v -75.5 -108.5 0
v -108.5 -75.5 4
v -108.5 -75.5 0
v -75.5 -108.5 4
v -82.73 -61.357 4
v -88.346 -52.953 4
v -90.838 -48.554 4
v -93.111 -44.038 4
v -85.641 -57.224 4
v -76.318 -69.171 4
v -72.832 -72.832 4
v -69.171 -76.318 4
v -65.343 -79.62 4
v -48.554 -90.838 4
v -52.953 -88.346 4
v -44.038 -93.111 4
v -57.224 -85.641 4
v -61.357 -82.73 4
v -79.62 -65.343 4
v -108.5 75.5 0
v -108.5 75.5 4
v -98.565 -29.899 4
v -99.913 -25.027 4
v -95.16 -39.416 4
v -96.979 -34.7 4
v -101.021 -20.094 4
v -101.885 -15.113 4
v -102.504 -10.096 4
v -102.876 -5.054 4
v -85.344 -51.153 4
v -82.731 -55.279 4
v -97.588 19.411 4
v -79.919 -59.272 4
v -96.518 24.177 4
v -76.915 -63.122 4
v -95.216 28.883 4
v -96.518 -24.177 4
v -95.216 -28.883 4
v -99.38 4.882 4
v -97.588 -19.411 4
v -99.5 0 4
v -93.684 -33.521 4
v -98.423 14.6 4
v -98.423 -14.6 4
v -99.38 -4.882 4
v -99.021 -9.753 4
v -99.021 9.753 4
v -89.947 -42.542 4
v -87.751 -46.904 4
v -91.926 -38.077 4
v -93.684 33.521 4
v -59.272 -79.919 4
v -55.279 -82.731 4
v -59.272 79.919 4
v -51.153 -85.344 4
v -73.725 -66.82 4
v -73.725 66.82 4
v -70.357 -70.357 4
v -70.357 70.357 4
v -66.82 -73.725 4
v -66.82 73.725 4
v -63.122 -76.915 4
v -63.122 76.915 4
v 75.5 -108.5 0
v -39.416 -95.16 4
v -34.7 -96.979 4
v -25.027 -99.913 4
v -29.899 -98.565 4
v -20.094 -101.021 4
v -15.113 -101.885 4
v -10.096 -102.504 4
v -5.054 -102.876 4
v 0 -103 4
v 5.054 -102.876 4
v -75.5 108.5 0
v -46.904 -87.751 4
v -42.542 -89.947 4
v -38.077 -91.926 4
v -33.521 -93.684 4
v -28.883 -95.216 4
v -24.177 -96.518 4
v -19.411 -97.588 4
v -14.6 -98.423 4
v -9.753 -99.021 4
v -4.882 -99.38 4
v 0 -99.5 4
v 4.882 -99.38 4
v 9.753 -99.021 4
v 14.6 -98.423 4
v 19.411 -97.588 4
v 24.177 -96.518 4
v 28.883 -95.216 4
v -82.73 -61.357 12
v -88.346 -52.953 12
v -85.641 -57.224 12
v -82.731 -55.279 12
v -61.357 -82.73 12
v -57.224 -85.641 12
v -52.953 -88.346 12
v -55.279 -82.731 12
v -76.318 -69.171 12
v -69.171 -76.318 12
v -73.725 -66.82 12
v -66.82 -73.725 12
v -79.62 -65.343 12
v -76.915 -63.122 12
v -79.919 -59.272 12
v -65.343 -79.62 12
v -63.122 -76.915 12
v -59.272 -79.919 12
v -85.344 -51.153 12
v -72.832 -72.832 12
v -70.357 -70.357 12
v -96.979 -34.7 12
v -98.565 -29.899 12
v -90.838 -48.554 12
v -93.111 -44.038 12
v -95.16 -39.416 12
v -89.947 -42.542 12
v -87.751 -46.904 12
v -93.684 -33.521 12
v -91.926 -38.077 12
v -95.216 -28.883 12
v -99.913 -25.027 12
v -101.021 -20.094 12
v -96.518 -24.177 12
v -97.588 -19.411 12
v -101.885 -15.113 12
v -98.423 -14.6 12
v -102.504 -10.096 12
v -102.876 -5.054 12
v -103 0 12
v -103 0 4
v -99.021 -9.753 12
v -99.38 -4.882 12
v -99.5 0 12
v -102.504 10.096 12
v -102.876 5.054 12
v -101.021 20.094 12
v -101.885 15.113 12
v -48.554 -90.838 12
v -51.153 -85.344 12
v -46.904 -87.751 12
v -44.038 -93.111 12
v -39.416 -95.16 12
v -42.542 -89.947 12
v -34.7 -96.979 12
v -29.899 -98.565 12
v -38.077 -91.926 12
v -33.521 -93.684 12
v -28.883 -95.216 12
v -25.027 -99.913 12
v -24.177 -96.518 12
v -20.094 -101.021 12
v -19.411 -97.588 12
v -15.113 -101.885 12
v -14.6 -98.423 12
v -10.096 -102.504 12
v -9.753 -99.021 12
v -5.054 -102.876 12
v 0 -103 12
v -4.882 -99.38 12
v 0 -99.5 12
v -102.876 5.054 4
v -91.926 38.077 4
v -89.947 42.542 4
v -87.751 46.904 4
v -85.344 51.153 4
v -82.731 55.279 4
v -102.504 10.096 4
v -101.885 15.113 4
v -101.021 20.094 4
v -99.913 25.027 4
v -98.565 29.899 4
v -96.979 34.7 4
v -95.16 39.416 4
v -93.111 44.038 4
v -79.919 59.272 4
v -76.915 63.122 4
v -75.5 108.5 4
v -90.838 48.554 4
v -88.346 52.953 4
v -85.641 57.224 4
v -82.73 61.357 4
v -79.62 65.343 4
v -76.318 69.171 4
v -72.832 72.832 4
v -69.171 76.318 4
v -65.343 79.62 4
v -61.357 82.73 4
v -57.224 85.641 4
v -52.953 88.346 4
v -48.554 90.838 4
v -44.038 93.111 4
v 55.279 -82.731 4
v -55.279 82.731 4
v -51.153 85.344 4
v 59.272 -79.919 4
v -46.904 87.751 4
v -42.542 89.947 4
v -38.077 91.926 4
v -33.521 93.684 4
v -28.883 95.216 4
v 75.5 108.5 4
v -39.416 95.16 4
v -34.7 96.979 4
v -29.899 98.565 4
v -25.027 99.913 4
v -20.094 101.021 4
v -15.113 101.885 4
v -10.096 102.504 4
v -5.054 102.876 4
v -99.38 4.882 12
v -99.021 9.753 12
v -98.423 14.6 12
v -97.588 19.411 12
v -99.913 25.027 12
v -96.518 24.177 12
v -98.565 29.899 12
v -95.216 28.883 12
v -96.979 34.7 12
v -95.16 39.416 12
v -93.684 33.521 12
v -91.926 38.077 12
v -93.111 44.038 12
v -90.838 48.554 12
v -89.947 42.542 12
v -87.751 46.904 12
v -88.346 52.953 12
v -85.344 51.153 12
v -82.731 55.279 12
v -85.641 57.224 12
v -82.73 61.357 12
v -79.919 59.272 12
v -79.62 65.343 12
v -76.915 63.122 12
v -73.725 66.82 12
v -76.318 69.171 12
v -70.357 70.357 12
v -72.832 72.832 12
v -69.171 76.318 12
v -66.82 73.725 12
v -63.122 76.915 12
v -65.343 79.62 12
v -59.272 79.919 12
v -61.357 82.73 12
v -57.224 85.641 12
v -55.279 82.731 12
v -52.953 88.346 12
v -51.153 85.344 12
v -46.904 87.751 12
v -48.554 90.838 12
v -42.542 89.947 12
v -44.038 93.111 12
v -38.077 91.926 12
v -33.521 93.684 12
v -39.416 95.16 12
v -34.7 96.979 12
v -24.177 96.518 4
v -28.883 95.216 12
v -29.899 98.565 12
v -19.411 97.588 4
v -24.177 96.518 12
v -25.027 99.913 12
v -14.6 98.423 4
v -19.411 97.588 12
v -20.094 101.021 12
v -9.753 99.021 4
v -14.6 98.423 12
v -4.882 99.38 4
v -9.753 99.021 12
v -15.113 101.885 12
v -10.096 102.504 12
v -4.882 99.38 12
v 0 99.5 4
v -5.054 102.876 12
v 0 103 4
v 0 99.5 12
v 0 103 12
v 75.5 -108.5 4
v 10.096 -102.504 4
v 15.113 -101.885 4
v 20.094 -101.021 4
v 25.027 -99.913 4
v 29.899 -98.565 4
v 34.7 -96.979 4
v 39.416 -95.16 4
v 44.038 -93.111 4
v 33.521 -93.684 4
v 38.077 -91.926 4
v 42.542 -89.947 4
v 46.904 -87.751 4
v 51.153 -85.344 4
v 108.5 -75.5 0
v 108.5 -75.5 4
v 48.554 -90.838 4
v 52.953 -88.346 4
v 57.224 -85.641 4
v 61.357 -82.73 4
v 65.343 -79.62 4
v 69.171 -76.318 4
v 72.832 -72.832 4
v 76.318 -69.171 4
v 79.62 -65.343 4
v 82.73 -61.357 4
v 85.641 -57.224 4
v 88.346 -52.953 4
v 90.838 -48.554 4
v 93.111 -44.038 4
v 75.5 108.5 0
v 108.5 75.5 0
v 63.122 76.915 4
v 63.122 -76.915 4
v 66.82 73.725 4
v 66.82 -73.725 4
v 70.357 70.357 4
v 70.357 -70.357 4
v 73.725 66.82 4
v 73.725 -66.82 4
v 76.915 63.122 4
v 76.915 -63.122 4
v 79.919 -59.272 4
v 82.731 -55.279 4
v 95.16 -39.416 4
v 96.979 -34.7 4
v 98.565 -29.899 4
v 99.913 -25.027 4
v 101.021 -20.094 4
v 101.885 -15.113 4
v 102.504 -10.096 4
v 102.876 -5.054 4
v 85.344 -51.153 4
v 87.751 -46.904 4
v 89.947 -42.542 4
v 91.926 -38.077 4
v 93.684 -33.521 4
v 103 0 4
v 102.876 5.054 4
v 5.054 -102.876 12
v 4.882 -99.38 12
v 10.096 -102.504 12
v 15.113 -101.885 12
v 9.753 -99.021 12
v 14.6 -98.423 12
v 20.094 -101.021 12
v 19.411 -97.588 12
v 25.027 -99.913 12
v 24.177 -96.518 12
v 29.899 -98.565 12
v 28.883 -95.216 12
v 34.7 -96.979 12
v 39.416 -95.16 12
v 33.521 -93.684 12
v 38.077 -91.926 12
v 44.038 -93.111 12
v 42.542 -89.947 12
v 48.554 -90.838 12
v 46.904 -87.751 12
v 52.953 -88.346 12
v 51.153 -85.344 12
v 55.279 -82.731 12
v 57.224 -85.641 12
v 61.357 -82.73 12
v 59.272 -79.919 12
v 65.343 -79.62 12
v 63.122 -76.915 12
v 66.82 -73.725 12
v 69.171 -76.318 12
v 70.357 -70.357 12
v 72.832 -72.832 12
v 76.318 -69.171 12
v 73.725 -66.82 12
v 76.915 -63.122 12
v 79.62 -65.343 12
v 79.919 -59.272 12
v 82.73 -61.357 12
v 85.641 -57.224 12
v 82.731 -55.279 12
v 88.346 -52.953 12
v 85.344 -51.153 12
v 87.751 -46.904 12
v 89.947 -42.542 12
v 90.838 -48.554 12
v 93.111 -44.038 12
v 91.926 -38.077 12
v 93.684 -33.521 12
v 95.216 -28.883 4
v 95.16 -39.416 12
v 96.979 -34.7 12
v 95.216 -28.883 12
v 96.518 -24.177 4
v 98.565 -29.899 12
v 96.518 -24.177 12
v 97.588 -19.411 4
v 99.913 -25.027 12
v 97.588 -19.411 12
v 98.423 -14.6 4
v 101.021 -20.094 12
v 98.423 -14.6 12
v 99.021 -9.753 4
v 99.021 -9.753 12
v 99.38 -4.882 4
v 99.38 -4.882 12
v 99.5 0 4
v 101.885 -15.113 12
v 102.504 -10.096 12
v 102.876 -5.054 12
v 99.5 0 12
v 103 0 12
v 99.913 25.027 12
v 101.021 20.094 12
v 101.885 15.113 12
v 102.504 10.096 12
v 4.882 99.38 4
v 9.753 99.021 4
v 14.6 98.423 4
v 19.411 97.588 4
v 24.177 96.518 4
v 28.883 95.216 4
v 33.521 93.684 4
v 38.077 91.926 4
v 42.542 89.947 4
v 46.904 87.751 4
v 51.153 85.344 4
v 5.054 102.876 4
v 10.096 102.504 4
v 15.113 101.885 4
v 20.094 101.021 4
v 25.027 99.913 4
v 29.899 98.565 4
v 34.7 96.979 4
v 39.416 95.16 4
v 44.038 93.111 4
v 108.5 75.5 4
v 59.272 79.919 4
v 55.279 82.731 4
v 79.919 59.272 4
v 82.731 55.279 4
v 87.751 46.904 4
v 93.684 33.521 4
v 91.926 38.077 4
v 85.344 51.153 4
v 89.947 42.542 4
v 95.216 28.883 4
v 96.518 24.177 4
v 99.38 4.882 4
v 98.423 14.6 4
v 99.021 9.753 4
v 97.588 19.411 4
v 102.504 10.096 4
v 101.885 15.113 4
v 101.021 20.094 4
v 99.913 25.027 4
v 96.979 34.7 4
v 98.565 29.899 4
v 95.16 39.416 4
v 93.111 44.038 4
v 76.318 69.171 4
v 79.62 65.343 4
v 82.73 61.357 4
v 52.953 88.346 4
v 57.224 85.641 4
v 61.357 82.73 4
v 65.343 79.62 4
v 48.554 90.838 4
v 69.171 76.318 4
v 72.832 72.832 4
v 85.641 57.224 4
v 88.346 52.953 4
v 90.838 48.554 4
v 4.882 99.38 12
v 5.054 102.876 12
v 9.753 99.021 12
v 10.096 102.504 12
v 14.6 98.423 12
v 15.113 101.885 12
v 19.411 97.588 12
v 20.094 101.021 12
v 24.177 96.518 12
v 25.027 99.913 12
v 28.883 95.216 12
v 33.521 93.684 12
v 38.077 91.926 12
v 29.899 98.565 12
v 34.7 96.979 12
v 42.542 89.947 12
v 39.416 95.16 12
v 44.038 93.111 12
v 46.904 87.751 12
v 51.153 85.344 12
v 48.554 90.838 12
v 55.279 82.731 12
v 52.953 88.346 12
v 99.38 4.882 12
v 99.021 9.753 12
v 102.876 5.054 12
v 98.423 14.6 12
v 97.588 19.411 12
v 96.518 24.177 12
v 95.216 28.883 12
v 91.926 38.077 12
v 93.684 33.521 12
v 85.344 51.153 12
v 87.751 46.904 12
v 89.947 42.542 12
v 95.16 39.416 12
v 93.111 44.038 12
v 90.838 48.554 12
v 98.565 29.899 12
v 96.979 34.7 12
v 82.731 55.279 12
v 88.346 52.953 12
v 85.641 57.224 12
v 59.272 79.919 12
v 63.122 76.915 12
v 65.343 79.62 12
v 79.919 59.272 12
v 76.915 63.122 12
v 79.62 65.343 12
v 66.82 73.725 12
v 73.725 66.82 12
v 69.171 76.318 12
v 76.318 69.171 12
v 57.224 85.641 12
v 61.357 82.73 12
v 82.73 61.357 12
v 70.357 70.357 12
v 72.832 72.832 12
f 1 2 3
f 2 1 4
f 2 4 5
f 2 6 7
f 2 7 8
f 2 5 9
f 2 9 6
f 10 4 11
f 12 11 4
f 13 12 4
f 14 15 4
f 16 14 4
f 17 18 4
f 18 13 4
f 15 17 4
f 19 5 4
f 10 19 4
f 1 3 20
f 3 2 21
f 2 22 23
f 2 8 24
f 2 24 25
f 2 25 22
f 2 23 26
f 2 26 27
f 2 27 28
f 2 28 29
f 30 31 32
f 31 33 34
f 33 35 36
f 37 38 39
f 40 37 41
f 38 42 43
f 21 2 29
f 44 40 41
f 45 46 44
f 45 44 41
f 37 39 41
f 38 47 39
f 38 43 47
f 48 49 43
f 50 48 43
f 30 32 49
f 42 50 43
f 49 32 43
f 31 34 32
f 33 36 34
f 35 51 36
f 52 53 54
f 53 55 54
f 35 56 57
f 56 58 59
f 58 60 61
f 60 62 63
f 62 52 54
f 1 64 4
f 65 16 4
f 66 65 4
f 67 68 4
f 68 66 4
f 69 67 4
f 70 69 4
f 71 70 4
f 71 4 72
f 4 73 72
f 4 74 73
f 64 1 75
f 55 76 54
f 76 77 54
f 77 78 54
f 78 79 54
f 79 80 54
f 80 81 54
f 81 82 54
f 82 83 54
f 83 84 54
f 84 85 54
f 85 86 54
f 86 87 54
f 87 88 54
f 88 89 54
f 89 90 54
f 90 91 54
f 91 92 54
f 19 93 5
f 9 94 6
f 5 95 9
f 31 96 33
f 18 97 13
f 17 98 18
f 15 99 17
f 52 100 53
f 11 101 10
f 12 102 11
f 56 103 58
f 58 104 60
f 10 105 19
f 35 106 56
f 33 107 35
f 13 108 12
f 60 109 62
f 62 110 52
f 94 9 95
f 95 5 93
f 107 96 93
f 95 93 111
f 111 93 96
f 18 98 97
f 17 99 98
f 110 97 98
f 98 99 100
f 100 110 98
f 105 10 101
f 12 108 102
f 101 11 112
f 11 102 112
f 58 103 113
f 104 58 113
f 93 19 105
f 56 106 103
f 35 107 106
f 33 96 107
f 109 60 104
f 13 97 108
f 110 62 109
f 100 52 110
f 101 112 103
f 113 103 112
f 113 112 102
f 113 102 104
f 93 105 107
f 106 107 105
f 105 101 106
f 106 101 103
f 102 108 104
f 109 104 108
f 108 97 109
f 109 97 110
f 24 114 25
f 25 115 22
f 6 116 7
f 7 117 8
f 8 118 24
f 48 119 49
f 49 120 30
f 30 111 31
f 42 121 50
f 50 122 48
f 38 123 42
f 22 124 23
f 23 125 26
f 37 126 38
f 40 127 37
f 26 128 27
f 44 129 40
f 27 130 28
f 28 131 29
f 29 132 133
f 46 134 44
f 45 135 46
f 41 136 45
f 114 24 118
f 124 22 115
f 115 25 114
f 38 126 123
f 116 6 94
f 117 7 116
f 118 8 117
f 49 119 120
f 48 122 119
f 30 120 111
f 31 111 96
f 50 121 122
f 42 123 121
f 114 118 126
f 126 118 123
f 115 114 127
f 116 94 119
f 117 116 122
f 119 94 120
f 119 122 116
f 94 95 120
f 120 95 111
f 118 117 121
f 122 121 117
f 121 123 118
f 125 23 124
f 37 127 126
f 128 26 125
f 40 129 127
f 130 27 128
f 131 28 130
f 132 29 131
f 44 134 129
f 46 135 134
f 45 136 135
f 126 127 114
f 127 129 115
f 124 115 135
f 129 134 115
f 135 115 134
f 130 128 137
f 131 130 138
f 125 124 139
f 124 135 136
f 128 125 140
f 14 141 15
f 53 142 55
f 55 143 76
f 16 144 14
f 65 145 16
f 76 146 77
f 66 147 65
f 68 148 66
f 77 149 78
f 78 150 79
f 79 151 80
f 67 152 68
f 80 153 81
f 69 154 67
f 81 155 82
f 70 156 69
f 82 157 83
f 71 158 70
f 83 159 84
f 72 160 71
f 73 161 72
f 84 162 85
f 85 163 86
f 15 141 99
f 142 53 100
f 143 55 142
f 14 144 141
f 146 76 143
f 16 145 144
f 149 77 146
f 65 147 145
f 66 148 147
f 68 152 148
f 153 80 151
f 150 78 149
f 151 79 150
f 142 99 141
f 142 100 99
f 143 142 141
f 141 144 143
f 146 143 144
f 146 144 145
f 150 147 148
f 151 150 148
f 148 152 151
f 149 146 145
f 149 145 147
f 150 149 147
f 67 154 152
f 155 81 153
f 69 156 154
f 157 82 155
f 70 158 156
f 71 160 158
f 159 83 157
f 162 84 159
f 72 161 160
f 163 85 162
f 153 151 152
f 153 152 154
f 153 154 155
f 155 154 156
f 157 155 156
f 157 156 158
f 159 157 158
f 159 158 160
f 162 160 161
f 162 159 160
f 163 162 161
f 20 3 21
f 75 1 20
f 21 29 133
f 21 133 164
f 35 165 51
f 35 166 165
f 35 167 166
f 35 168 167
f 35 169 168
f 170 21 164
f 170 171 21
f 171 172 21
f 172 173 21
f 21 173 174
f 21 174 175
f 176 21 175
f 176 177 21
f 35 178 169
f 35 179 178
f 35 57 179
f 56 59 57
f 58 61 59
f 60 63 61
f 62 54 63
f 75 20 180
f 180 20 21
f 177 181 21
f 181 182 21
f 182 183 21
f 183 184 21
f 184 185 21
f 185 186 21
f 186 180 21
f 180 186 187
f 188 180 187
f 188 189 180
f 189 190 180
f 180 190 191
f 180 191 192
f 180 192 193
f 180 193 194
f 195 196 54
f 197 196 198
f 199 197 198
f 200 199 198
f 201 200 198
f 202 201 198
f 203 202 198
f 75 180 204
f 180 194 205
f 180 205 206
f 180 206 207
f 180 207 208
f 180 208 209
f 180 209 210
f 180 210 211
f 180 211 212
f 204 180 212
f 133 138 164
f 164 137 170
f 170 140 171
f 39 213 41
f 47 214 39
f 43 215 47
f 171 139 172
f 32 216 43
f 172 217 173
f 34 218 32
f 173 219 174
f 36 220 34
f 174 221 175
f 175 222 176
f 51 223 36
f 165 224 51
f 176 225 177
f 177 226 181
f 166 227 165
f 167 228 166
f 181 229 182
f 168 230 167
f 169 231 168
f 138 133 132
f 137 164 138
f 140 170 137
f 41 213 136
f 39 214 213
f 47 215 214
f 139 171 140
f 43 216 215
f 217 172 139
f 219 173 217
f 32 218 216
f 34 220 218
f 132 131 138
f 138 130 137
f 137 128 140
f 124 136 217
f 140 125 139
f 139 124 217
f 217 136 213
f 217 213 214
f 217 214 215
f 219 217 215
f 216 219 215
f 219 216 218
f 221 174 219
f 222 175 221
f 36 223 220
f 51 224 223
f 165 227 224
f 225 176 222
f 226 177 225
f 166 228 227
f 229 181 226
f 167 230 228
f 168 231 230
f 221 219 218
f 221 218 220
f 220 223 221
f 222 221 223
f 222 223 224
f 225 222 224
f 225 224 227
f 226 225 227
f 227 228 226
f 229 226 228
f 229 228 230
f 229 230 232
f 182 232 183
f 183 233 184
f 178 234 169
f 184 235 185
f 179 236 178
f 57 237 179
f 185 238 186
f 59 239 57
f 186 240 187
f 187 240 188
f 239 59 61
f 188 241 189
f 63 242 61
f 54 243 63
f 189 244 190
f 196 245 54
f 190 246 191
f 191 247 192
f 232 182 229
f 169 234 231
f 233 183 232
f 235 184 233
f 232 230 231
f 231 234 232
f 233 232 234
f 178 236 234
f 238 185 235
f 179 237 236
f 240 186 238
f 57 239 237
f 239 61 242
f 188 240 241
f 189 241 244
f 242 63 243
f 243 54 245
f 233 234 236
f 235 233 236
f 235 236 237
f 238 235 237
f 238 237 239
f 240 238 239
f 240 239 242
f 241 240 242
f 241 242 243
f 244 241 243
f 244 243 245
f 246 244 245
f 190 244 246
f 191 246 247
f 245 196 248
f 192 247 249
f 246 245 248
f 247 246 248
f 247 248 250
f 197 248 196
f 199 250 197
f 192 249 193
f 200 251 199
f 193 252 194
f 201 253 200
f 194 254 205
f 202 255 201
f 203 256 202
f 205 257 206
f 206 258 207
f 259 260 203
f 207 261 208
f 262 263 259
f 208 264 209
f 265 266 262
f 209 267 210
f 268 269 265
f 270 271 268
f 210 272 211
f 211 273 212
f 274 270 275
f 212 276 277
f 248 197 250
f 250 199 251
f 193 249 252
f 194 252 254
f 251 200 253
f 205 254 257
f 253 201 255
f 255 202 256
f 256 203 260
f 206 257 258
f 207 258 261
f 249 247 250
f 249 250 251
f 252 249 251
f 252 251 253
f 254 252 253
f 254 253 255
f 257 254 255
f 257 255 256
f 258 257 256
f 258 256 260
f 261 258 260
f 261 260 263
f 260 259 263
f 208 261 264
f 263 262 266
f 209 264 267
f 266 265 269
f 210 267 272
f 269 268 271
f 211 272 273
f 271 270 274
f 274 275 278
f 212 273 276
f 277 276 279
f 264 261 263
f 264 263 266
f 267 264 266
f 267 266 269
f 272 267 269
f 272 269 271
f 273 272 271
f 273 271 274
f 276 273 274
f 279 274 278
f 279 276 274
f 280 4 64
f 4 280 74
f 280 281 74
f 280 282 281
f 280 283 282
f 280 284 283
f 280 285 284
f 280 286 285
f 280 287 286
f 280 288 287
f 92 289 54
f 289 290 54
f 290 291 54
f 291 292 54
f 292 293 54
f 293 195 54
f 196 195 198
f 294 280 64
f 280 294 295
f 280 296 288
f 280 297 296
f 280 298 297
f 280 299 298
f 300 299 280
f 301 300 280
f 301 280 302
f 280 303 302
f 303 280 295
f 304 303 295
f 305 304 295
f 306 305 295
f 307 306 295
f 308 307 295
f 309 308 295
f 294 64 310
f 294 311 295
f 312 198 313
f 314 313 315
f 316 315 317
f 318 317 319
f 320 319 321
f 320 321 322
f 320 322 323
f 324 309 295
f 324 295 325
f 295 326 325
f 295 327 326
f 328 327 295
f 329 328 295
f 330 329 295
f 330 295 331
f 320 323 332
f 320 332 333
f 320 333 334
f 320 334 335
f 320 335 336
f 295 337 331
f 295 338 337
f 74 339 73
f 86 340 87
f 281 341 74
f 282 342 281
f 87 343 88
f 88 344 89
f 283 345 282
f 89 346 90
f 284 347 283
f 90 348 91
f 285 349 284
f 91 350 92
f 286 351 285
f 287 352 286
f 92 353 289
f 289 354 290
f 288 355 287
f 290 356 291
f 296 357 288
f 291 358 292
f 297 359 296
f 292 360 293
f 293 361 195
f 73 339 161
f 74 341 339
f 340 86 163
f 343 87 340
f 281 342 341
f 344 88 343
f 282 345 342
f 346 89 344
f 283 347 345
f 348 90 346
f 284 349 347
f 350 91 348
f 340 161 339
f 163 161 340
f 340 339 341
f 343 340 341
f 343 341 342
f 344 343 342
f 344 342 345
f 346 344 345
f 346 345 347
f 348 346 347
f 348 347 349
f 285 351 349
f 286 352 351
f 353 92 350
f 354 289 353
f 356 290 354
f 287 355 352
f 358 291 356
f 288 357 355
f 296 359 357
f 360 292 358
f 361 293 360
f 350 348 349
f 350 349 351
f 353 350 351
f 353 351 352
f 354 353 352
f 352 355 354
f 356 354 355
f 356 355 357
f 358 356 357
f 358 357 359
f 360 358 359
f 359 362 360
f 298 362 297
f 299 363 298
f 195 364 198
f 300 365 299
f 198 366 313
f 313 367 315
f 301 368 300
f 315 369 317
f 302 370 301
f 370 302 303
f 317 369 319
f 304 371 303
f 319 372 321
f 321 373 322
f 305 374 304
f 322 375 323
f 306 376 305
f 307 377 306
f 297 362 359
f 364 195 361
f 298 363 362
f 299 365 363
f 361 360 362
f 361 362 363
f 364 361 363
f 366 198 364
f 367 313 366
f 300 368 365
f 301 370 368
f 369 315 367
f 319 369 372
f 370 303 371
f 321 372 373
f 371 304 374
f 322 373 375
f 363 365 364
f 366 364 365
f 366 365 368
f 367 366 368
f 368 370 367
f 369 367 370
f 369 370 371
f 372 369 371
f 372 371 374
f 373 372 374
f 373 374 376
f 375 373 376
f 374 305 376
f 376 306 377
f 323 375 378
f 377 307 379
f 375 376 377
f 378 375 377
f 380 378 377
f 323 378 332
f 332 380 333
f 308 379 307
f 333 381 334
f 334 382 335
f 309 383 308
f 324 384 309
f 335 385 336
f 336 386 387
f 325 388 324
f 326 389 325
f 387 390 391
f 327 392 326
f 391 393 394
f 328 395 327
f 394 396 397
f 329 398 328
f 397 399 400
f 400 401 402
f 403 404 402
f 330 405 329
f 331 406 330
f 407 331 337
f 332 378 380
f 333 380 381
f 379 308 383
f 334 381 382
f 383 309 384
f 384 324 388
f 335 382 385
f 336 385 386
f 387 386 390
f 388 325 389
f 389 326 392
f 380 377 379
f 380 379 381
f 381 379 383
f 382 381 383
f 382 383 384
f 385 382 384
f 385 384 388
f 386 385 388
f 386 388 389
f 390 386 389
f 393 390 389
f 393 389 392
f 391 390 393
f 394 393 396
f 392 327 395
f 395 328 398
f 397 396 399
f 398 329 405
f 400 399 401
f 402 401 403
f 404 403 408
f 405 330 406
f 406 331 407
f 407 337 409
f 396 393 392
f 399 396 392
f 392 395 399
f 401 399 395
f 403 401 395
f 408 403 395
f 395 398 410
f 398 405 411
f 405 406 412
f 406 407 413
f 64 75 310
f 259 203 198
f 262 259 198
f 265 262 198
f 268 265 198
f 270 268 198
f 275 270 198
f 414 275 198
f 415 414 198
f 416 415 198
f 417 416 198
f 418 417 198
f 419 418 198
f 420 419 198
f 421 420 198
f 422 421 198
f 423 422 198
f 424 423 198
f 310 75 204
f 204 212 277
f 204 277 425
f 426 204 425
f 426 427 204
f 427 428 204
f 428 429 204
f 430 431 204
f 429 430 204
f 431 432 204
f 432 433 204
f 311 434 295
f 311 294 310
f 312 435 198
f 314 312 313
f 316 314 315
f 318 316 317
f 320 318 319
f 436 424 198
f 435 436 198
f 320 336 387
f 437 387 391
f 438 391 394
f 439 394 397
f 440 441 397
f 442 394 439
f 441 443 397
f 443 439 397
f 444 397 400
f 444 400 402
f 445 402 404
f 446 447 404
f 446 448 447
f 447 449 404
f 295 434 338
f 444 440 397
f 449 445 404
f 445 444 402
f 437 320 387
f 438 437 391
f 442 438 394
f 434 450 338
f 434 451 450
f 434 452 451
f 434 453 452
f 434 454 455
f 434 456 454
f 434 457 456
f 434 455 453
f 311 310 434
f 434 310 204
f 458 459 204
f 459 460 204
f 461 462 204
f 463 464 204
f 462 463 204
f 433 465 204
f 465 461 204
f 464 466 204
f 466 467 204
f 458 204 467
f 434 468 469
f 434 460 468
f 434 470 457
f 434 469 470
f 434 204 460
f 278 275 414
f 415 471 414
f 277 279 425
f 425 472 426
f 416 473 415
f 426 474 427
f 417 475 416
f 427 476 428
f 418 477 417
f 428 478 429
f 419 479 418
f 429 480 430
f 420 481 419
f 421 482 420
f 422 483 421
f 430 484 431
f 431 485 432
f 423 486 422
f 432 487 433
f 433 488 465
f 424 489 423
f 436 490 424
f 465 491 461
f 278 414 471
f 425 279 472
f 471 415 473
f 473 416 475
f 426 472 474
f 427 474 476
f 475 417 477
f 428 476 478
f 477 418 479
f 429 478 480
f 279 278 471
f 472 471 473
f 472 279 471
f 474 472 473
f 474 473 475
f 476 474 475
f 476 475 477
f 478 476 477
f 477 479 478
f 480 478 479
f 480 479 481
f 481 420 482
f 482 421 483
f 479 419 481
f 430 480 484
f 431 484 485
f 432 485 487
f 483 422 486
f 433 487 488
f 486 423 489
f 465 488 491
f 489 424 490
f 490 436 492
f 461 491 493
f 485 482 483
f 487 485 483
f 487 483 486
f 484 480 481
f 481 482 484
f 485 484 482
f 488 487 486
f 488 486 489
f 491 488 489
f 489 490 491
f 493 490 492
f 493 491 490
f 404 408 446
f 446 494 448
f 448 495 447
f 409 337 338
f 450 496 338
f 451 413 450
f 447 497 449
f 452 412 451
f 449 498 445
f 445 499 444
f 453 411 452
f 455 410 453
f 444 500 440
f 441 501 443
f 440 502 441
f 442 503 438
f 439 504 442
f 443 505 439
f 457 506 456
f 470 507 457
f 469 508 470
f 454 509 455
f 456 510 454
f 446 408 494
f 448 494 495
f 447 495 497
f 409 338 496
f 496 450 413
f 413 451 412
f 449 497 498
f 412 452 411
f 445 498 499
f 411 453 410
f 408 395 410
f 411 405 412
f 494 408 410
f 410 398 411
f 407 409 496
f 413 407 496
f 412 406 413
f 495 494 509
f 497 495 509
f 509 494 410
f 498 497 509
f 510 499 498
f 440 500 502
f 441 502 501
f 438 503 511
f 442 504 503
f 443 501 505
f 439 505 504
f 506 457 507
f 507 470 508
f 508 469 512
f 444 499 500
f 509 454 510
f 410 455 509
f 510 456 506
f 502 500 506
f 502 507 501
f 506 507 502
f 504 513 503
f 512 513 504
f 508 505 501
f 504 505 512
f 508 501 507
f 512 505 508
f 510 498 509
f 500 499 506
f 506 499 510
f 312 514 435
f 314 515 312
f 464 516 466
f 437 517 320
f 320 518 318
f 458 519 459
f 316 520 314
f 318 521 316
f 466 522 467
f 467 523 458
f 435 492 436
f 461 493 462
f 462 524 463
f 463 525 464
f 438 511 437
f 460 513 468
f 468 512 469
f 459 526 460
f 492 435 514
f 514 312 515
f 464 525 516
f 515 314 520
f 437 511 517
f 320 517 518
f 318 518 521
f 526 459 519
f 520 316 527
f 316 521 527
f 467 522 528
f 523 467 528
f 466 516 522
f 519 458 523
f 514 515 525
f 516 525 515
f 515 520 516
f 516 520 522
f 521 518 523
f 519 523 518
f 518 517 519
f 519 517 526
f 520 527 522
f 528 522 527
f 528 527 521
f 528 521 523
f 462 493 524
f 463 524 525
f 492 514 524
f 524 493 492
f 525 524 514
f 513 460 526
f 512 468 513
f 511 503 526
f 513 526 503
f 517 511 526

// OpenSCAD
include <core.scad>

module top(){
    inh = 8;
    // fills in the top of the hotbox, having radius
    // innerr. give us a bit of smidge so it's not
    // a tight fit.
    translate([0, 0, inh]){
        difference(){
            cylinder(inh, innerr - 0.5, innerr - 0.5, true);
            cylinder(inh, innerr - 4, innerr - 4, true);
        }
    }
    linear_extrude(inh / 2){
        polygon(opoints);
    }
}

multicolor("white"){
    top();
}
